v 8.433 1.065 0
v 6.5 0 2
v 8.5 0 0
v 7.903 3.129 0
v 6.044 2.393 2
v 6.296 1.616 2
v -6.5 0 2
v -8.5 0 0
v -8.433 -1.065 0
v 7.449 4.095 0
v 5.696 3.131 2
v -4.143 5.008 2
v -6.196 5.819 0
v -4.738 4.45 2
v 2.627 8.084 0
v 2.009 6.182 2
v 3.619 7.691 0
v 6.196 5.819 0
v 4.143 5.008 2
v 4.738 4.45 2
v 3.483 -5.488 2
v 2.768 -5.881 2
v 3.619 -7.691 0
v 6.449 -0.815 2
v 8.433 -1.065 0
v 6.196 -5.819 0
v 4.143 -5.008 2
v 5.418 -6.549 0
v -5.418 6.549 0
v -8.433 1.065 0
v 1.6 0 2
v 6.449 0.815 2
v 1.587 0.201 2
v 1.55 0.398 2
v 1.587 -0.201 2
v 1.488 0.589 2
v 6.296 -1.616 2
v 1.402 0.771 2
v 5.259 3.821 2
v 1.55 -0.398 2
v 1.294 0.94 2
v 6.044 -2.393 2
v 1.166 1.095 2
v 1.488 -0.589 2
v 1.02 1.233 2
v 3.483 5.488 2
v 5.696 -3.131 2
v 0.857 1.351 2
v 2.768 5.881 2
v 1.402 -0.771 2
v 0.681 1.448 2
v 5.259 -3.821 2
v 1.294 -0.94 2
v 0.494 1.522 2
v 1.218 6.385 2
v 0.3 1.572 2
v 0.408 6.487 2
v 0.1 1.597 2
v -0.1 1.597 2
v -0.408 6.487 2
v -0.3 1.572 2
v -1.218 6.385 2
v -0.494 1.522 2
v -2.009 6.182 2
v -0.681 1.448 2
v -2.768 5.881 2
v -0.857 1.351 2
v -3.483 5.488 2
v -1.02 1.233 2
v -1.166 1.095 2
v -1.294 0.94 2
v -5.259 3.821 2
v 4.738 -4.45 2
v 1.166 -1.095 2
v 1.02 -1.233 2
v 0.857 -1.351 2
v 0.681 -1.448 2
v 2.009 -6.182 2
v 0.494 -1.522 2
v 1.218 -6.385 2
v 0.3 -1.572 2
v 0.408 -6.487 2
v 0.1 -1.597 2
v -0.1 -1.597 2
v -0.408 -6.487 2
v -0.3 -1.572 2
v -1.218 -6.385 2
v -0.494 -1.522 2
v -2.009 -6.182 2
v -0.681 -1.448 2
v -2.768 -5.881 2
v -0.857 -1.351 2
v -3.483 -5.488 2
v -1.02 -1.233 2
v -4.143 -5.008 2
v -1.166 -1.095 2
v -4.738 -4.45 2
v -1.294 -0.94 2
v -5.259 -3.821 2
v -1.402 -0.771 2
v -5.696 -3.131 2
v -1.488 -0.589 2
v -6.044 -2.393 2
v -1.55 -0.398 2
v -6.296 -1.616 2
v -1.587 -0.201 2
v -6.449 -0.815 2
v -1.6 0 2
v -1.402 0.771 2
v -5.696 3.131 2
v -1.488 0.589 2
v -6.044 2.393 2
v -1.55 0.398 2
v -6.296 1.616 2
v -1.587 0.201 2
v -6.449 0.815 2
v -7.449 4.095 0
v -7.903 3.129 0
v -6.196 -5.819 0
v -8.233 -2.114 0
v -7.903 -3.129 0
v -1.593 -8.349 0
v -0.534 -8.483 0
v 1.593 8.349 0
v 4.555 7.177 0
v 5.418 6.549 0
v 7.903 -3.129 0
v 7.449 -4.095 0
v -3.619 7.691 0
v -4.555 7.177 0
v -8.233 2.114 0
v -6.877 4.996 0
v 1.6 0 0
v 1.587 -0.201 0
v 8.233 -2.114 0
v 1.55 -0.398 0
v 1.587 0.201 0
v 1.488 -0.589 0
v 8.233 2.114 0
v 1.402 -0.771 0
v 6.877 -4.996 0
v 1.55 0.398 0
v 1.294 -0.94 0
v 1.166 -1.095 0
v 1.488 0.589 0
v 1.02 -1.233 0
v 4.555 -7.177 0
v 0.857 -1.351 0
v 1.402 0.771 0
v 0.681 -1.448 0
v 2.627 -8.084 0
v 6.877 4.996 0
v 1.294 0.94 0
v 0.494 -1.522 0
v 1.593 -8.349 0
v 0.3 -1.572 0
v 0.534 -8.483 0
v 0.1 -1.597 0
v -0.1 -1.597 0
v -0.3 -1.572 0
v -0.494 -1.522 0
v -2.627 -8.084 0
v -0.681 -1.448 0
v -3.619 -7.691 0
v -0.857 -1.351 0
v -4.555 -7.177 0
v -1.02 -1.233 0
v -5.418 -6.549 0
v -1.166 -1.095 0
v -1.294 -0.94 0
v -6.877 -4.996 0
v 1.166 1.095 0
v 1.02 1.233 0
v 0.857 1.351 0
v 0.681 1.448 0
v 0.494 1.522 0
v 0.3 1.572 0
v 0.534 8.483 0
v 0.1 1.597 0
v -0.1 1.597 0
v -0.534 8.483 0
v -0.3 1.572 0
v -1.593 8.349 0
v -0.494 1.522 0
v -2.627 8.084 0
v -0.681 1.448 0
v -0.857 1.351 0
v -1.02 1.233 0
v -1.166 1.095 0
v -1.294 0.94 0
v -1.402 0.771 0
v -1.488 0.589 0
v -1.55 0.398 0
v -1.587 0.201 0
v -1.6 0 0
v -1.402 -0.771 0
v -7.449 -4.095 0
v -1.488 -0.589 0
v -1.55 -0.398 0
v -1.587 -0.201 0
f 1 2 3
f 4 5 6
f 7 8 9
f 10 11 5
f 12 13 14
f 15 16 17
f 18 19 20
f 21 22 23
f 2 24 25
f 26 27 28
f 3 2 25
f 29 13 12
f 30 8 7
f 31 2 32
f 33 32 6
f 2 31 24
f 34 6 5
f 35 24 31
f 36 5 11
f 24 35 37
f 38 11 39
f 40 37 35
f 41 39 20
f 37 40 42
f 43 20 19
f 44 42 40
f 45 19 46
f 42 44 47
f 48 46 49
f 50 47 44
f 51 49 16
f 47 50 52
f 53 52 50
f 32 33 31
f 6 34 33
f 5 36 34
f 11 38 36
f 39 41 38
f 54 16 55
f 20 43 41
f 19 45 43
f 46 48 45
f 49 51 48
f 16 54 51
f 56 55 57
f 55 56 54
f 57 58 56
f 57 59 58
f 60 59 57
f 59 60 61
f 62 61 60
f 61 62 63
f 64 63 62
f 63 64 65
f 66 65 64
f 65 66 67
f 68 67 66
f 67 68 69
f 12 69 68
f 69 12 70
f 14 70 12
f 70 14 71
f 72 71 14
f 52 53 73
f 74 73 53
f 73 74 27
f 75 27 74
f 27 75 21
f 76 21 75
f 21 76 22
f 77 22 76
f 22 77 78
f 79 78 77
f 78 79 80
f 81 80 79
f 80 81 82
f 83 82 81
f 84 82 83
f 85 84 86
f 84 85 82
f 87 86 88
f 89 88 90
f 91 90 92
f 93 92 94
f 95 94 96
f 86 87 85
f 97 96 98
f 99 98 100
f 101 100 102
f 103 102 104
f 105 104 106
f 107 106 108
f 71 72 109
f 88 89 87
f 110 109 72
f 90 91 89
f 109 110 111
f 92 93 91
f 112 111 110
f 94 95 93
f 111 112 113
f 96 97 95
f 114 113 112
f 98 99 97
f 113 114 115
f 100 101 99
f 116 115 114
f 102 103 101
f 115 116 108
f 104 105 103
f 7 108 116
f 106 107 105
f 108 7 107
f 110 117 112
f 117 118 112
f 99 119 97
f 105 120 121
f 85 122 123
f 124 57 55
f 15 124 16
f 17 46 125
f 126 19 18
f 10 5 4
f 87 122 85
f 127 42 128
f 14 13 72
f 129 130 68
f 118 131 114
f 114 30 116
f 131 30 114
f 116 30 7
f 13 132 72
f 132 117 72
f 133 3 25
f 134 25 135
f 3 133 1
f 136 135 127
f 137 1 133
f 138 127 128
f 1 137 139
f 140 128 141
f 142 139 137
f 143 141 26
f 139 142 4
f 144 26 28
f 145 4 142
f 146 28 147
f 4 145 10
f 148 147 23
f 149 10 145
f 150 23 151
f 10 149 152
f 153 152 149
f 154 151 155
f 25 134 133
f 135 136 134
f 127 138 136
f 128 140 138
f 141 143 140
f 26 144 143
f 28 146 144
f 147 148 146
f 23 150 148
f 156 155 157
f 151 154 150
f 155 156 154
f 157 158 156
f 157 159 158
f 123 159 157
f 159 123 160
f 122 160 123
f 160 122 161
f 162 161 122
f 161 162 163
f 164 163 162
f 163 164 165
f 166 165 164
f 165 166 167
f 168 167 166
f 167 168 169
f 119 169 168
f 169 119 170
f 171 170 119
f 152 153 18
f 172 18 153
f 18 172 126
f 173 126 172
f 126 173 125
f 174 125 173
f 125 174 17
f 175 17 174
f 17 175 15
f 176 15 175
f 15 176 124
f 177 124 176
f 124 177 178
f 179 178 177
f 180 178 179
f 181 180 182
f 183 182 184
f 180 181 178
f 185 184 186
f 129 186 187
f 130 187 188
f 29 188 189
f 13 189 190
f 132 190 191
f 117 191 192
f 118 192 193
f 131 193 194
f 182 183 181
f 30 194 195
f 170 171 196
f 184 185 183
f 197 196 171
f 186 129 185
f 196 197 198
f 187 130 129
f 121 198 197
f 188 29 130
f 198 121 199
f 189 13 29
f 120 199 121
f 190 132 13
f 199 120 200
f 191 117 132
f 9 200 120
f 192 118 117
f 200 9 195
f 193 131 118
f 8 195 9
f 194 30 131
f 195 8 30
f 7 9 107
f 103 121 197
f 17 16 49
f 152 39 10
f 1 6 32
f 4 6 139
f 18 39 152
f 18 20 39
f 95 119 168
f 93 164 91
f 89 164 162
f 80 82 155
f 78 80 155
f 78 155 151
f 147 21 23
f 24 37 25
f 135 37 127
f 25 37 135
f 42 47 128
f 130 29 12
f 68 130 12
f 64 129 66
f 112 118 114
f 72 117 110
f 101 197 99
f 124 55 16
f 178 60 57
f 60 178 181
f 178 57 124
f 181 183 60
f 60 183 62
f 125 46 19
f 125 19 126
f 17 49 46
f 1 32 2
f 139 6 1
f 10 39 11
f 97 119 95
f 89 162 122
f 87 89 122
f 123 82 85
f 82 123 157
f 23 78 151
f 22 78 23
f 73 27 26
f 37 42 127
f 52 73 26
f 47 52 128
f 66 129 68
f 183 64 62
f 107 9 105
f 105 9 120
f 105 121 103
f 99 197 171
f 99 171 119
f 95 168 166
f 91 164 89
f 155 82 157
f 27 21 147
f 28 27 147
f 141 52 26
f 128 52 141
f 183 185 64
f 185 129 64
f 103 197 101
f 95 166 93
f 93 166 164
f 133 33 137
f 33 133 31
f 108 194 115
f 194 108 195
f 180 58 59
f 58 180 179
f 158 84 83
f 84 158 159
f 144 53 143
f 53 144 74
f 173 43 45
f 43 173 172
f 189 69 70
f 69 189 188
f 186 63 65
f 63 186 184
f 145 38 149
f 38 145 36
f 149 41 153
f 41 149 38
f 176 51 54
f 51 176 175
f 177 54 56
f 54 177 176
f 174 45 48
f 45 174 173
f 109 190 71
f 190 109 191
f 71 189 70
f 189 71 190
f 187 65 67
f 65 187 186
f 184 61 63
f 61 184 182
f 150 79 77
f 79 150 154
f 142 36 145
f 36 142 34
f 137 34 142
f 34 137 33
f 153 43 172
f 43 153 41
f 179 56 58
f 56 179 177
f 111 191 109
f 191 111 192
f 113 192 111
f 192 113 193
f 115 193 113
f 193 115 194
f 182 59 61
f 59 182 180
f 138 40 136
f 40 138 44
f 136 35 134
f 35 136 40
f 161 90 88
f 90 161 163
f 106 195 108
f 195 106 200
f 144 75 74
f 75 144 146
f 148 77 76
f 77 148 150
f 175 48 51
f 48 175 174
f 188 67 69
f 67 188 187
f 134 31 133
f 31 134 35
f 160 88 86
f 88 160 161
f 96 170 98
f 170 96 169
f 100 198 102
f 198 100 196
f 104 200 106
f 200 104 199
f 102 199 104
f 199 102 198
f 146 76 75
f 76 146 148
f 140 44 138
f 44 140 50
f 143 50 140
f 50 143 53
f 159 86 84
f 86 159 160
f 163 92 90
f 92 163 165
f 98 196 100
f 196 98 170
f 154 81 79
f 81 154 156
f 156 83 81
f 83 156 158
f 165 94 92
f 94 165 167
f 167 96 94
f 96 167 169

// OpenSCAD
// file: params.scad
  base = 0.0;
  length = 50.0;
  len2 = length/2.0;
  width = 28.0;
  w2 = width/2.0;
  height = 14.0;
  thickness = 3.0;
  th2 = thickness/2.0;
  x1 = 25.0;
  y1 = 11.5;
  th_plate = 4.0;
  ha_thick = 4.0; // hose adapter plate thickness

  // depth of threadable hole
  scdepth = 4.0;

  // m3 screws
  rm3small = 1.4;  // threadable hole
  rm3large = 1.6;  // passthrough hole
  rm3shank = 1.65;  // passthrough hole - no threads
// main file
$fn=50;
include <params.scad>;
module DiskValve() {
  base = 0.0;
  dv_thick = 2.0;
    difference(){
      cylinder(r1=8.5, r2=6.5, h=dv_thick);
      translate([0.0,0.0,-0.01])cylinder(r=rm3large,h=dv_thick+0.02);
    };
};
DiskValve();
